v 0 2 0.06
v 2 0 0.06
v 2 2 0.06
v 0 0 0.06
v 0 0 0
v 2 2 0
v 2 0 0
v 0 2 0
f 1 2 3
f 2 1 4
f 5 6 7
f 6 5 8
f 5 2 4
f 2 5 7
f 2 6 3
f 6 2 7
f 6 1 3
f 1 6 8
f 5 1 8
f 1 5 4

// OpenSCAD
/* Warning, this is a very basic generator with a lot of approximation 
input data : [UDFN, HTA, 2x2x.06mm, 6, , A, C04-01156A]
generated by com.zoubworld.electronics.cad.model3d.Basic
Date : Sun Feb 15 10:50:49 CET 2026
*/

//body
color("black")
translate([0,0,0])
cube([2.0,2.0,0.06], center=false);
